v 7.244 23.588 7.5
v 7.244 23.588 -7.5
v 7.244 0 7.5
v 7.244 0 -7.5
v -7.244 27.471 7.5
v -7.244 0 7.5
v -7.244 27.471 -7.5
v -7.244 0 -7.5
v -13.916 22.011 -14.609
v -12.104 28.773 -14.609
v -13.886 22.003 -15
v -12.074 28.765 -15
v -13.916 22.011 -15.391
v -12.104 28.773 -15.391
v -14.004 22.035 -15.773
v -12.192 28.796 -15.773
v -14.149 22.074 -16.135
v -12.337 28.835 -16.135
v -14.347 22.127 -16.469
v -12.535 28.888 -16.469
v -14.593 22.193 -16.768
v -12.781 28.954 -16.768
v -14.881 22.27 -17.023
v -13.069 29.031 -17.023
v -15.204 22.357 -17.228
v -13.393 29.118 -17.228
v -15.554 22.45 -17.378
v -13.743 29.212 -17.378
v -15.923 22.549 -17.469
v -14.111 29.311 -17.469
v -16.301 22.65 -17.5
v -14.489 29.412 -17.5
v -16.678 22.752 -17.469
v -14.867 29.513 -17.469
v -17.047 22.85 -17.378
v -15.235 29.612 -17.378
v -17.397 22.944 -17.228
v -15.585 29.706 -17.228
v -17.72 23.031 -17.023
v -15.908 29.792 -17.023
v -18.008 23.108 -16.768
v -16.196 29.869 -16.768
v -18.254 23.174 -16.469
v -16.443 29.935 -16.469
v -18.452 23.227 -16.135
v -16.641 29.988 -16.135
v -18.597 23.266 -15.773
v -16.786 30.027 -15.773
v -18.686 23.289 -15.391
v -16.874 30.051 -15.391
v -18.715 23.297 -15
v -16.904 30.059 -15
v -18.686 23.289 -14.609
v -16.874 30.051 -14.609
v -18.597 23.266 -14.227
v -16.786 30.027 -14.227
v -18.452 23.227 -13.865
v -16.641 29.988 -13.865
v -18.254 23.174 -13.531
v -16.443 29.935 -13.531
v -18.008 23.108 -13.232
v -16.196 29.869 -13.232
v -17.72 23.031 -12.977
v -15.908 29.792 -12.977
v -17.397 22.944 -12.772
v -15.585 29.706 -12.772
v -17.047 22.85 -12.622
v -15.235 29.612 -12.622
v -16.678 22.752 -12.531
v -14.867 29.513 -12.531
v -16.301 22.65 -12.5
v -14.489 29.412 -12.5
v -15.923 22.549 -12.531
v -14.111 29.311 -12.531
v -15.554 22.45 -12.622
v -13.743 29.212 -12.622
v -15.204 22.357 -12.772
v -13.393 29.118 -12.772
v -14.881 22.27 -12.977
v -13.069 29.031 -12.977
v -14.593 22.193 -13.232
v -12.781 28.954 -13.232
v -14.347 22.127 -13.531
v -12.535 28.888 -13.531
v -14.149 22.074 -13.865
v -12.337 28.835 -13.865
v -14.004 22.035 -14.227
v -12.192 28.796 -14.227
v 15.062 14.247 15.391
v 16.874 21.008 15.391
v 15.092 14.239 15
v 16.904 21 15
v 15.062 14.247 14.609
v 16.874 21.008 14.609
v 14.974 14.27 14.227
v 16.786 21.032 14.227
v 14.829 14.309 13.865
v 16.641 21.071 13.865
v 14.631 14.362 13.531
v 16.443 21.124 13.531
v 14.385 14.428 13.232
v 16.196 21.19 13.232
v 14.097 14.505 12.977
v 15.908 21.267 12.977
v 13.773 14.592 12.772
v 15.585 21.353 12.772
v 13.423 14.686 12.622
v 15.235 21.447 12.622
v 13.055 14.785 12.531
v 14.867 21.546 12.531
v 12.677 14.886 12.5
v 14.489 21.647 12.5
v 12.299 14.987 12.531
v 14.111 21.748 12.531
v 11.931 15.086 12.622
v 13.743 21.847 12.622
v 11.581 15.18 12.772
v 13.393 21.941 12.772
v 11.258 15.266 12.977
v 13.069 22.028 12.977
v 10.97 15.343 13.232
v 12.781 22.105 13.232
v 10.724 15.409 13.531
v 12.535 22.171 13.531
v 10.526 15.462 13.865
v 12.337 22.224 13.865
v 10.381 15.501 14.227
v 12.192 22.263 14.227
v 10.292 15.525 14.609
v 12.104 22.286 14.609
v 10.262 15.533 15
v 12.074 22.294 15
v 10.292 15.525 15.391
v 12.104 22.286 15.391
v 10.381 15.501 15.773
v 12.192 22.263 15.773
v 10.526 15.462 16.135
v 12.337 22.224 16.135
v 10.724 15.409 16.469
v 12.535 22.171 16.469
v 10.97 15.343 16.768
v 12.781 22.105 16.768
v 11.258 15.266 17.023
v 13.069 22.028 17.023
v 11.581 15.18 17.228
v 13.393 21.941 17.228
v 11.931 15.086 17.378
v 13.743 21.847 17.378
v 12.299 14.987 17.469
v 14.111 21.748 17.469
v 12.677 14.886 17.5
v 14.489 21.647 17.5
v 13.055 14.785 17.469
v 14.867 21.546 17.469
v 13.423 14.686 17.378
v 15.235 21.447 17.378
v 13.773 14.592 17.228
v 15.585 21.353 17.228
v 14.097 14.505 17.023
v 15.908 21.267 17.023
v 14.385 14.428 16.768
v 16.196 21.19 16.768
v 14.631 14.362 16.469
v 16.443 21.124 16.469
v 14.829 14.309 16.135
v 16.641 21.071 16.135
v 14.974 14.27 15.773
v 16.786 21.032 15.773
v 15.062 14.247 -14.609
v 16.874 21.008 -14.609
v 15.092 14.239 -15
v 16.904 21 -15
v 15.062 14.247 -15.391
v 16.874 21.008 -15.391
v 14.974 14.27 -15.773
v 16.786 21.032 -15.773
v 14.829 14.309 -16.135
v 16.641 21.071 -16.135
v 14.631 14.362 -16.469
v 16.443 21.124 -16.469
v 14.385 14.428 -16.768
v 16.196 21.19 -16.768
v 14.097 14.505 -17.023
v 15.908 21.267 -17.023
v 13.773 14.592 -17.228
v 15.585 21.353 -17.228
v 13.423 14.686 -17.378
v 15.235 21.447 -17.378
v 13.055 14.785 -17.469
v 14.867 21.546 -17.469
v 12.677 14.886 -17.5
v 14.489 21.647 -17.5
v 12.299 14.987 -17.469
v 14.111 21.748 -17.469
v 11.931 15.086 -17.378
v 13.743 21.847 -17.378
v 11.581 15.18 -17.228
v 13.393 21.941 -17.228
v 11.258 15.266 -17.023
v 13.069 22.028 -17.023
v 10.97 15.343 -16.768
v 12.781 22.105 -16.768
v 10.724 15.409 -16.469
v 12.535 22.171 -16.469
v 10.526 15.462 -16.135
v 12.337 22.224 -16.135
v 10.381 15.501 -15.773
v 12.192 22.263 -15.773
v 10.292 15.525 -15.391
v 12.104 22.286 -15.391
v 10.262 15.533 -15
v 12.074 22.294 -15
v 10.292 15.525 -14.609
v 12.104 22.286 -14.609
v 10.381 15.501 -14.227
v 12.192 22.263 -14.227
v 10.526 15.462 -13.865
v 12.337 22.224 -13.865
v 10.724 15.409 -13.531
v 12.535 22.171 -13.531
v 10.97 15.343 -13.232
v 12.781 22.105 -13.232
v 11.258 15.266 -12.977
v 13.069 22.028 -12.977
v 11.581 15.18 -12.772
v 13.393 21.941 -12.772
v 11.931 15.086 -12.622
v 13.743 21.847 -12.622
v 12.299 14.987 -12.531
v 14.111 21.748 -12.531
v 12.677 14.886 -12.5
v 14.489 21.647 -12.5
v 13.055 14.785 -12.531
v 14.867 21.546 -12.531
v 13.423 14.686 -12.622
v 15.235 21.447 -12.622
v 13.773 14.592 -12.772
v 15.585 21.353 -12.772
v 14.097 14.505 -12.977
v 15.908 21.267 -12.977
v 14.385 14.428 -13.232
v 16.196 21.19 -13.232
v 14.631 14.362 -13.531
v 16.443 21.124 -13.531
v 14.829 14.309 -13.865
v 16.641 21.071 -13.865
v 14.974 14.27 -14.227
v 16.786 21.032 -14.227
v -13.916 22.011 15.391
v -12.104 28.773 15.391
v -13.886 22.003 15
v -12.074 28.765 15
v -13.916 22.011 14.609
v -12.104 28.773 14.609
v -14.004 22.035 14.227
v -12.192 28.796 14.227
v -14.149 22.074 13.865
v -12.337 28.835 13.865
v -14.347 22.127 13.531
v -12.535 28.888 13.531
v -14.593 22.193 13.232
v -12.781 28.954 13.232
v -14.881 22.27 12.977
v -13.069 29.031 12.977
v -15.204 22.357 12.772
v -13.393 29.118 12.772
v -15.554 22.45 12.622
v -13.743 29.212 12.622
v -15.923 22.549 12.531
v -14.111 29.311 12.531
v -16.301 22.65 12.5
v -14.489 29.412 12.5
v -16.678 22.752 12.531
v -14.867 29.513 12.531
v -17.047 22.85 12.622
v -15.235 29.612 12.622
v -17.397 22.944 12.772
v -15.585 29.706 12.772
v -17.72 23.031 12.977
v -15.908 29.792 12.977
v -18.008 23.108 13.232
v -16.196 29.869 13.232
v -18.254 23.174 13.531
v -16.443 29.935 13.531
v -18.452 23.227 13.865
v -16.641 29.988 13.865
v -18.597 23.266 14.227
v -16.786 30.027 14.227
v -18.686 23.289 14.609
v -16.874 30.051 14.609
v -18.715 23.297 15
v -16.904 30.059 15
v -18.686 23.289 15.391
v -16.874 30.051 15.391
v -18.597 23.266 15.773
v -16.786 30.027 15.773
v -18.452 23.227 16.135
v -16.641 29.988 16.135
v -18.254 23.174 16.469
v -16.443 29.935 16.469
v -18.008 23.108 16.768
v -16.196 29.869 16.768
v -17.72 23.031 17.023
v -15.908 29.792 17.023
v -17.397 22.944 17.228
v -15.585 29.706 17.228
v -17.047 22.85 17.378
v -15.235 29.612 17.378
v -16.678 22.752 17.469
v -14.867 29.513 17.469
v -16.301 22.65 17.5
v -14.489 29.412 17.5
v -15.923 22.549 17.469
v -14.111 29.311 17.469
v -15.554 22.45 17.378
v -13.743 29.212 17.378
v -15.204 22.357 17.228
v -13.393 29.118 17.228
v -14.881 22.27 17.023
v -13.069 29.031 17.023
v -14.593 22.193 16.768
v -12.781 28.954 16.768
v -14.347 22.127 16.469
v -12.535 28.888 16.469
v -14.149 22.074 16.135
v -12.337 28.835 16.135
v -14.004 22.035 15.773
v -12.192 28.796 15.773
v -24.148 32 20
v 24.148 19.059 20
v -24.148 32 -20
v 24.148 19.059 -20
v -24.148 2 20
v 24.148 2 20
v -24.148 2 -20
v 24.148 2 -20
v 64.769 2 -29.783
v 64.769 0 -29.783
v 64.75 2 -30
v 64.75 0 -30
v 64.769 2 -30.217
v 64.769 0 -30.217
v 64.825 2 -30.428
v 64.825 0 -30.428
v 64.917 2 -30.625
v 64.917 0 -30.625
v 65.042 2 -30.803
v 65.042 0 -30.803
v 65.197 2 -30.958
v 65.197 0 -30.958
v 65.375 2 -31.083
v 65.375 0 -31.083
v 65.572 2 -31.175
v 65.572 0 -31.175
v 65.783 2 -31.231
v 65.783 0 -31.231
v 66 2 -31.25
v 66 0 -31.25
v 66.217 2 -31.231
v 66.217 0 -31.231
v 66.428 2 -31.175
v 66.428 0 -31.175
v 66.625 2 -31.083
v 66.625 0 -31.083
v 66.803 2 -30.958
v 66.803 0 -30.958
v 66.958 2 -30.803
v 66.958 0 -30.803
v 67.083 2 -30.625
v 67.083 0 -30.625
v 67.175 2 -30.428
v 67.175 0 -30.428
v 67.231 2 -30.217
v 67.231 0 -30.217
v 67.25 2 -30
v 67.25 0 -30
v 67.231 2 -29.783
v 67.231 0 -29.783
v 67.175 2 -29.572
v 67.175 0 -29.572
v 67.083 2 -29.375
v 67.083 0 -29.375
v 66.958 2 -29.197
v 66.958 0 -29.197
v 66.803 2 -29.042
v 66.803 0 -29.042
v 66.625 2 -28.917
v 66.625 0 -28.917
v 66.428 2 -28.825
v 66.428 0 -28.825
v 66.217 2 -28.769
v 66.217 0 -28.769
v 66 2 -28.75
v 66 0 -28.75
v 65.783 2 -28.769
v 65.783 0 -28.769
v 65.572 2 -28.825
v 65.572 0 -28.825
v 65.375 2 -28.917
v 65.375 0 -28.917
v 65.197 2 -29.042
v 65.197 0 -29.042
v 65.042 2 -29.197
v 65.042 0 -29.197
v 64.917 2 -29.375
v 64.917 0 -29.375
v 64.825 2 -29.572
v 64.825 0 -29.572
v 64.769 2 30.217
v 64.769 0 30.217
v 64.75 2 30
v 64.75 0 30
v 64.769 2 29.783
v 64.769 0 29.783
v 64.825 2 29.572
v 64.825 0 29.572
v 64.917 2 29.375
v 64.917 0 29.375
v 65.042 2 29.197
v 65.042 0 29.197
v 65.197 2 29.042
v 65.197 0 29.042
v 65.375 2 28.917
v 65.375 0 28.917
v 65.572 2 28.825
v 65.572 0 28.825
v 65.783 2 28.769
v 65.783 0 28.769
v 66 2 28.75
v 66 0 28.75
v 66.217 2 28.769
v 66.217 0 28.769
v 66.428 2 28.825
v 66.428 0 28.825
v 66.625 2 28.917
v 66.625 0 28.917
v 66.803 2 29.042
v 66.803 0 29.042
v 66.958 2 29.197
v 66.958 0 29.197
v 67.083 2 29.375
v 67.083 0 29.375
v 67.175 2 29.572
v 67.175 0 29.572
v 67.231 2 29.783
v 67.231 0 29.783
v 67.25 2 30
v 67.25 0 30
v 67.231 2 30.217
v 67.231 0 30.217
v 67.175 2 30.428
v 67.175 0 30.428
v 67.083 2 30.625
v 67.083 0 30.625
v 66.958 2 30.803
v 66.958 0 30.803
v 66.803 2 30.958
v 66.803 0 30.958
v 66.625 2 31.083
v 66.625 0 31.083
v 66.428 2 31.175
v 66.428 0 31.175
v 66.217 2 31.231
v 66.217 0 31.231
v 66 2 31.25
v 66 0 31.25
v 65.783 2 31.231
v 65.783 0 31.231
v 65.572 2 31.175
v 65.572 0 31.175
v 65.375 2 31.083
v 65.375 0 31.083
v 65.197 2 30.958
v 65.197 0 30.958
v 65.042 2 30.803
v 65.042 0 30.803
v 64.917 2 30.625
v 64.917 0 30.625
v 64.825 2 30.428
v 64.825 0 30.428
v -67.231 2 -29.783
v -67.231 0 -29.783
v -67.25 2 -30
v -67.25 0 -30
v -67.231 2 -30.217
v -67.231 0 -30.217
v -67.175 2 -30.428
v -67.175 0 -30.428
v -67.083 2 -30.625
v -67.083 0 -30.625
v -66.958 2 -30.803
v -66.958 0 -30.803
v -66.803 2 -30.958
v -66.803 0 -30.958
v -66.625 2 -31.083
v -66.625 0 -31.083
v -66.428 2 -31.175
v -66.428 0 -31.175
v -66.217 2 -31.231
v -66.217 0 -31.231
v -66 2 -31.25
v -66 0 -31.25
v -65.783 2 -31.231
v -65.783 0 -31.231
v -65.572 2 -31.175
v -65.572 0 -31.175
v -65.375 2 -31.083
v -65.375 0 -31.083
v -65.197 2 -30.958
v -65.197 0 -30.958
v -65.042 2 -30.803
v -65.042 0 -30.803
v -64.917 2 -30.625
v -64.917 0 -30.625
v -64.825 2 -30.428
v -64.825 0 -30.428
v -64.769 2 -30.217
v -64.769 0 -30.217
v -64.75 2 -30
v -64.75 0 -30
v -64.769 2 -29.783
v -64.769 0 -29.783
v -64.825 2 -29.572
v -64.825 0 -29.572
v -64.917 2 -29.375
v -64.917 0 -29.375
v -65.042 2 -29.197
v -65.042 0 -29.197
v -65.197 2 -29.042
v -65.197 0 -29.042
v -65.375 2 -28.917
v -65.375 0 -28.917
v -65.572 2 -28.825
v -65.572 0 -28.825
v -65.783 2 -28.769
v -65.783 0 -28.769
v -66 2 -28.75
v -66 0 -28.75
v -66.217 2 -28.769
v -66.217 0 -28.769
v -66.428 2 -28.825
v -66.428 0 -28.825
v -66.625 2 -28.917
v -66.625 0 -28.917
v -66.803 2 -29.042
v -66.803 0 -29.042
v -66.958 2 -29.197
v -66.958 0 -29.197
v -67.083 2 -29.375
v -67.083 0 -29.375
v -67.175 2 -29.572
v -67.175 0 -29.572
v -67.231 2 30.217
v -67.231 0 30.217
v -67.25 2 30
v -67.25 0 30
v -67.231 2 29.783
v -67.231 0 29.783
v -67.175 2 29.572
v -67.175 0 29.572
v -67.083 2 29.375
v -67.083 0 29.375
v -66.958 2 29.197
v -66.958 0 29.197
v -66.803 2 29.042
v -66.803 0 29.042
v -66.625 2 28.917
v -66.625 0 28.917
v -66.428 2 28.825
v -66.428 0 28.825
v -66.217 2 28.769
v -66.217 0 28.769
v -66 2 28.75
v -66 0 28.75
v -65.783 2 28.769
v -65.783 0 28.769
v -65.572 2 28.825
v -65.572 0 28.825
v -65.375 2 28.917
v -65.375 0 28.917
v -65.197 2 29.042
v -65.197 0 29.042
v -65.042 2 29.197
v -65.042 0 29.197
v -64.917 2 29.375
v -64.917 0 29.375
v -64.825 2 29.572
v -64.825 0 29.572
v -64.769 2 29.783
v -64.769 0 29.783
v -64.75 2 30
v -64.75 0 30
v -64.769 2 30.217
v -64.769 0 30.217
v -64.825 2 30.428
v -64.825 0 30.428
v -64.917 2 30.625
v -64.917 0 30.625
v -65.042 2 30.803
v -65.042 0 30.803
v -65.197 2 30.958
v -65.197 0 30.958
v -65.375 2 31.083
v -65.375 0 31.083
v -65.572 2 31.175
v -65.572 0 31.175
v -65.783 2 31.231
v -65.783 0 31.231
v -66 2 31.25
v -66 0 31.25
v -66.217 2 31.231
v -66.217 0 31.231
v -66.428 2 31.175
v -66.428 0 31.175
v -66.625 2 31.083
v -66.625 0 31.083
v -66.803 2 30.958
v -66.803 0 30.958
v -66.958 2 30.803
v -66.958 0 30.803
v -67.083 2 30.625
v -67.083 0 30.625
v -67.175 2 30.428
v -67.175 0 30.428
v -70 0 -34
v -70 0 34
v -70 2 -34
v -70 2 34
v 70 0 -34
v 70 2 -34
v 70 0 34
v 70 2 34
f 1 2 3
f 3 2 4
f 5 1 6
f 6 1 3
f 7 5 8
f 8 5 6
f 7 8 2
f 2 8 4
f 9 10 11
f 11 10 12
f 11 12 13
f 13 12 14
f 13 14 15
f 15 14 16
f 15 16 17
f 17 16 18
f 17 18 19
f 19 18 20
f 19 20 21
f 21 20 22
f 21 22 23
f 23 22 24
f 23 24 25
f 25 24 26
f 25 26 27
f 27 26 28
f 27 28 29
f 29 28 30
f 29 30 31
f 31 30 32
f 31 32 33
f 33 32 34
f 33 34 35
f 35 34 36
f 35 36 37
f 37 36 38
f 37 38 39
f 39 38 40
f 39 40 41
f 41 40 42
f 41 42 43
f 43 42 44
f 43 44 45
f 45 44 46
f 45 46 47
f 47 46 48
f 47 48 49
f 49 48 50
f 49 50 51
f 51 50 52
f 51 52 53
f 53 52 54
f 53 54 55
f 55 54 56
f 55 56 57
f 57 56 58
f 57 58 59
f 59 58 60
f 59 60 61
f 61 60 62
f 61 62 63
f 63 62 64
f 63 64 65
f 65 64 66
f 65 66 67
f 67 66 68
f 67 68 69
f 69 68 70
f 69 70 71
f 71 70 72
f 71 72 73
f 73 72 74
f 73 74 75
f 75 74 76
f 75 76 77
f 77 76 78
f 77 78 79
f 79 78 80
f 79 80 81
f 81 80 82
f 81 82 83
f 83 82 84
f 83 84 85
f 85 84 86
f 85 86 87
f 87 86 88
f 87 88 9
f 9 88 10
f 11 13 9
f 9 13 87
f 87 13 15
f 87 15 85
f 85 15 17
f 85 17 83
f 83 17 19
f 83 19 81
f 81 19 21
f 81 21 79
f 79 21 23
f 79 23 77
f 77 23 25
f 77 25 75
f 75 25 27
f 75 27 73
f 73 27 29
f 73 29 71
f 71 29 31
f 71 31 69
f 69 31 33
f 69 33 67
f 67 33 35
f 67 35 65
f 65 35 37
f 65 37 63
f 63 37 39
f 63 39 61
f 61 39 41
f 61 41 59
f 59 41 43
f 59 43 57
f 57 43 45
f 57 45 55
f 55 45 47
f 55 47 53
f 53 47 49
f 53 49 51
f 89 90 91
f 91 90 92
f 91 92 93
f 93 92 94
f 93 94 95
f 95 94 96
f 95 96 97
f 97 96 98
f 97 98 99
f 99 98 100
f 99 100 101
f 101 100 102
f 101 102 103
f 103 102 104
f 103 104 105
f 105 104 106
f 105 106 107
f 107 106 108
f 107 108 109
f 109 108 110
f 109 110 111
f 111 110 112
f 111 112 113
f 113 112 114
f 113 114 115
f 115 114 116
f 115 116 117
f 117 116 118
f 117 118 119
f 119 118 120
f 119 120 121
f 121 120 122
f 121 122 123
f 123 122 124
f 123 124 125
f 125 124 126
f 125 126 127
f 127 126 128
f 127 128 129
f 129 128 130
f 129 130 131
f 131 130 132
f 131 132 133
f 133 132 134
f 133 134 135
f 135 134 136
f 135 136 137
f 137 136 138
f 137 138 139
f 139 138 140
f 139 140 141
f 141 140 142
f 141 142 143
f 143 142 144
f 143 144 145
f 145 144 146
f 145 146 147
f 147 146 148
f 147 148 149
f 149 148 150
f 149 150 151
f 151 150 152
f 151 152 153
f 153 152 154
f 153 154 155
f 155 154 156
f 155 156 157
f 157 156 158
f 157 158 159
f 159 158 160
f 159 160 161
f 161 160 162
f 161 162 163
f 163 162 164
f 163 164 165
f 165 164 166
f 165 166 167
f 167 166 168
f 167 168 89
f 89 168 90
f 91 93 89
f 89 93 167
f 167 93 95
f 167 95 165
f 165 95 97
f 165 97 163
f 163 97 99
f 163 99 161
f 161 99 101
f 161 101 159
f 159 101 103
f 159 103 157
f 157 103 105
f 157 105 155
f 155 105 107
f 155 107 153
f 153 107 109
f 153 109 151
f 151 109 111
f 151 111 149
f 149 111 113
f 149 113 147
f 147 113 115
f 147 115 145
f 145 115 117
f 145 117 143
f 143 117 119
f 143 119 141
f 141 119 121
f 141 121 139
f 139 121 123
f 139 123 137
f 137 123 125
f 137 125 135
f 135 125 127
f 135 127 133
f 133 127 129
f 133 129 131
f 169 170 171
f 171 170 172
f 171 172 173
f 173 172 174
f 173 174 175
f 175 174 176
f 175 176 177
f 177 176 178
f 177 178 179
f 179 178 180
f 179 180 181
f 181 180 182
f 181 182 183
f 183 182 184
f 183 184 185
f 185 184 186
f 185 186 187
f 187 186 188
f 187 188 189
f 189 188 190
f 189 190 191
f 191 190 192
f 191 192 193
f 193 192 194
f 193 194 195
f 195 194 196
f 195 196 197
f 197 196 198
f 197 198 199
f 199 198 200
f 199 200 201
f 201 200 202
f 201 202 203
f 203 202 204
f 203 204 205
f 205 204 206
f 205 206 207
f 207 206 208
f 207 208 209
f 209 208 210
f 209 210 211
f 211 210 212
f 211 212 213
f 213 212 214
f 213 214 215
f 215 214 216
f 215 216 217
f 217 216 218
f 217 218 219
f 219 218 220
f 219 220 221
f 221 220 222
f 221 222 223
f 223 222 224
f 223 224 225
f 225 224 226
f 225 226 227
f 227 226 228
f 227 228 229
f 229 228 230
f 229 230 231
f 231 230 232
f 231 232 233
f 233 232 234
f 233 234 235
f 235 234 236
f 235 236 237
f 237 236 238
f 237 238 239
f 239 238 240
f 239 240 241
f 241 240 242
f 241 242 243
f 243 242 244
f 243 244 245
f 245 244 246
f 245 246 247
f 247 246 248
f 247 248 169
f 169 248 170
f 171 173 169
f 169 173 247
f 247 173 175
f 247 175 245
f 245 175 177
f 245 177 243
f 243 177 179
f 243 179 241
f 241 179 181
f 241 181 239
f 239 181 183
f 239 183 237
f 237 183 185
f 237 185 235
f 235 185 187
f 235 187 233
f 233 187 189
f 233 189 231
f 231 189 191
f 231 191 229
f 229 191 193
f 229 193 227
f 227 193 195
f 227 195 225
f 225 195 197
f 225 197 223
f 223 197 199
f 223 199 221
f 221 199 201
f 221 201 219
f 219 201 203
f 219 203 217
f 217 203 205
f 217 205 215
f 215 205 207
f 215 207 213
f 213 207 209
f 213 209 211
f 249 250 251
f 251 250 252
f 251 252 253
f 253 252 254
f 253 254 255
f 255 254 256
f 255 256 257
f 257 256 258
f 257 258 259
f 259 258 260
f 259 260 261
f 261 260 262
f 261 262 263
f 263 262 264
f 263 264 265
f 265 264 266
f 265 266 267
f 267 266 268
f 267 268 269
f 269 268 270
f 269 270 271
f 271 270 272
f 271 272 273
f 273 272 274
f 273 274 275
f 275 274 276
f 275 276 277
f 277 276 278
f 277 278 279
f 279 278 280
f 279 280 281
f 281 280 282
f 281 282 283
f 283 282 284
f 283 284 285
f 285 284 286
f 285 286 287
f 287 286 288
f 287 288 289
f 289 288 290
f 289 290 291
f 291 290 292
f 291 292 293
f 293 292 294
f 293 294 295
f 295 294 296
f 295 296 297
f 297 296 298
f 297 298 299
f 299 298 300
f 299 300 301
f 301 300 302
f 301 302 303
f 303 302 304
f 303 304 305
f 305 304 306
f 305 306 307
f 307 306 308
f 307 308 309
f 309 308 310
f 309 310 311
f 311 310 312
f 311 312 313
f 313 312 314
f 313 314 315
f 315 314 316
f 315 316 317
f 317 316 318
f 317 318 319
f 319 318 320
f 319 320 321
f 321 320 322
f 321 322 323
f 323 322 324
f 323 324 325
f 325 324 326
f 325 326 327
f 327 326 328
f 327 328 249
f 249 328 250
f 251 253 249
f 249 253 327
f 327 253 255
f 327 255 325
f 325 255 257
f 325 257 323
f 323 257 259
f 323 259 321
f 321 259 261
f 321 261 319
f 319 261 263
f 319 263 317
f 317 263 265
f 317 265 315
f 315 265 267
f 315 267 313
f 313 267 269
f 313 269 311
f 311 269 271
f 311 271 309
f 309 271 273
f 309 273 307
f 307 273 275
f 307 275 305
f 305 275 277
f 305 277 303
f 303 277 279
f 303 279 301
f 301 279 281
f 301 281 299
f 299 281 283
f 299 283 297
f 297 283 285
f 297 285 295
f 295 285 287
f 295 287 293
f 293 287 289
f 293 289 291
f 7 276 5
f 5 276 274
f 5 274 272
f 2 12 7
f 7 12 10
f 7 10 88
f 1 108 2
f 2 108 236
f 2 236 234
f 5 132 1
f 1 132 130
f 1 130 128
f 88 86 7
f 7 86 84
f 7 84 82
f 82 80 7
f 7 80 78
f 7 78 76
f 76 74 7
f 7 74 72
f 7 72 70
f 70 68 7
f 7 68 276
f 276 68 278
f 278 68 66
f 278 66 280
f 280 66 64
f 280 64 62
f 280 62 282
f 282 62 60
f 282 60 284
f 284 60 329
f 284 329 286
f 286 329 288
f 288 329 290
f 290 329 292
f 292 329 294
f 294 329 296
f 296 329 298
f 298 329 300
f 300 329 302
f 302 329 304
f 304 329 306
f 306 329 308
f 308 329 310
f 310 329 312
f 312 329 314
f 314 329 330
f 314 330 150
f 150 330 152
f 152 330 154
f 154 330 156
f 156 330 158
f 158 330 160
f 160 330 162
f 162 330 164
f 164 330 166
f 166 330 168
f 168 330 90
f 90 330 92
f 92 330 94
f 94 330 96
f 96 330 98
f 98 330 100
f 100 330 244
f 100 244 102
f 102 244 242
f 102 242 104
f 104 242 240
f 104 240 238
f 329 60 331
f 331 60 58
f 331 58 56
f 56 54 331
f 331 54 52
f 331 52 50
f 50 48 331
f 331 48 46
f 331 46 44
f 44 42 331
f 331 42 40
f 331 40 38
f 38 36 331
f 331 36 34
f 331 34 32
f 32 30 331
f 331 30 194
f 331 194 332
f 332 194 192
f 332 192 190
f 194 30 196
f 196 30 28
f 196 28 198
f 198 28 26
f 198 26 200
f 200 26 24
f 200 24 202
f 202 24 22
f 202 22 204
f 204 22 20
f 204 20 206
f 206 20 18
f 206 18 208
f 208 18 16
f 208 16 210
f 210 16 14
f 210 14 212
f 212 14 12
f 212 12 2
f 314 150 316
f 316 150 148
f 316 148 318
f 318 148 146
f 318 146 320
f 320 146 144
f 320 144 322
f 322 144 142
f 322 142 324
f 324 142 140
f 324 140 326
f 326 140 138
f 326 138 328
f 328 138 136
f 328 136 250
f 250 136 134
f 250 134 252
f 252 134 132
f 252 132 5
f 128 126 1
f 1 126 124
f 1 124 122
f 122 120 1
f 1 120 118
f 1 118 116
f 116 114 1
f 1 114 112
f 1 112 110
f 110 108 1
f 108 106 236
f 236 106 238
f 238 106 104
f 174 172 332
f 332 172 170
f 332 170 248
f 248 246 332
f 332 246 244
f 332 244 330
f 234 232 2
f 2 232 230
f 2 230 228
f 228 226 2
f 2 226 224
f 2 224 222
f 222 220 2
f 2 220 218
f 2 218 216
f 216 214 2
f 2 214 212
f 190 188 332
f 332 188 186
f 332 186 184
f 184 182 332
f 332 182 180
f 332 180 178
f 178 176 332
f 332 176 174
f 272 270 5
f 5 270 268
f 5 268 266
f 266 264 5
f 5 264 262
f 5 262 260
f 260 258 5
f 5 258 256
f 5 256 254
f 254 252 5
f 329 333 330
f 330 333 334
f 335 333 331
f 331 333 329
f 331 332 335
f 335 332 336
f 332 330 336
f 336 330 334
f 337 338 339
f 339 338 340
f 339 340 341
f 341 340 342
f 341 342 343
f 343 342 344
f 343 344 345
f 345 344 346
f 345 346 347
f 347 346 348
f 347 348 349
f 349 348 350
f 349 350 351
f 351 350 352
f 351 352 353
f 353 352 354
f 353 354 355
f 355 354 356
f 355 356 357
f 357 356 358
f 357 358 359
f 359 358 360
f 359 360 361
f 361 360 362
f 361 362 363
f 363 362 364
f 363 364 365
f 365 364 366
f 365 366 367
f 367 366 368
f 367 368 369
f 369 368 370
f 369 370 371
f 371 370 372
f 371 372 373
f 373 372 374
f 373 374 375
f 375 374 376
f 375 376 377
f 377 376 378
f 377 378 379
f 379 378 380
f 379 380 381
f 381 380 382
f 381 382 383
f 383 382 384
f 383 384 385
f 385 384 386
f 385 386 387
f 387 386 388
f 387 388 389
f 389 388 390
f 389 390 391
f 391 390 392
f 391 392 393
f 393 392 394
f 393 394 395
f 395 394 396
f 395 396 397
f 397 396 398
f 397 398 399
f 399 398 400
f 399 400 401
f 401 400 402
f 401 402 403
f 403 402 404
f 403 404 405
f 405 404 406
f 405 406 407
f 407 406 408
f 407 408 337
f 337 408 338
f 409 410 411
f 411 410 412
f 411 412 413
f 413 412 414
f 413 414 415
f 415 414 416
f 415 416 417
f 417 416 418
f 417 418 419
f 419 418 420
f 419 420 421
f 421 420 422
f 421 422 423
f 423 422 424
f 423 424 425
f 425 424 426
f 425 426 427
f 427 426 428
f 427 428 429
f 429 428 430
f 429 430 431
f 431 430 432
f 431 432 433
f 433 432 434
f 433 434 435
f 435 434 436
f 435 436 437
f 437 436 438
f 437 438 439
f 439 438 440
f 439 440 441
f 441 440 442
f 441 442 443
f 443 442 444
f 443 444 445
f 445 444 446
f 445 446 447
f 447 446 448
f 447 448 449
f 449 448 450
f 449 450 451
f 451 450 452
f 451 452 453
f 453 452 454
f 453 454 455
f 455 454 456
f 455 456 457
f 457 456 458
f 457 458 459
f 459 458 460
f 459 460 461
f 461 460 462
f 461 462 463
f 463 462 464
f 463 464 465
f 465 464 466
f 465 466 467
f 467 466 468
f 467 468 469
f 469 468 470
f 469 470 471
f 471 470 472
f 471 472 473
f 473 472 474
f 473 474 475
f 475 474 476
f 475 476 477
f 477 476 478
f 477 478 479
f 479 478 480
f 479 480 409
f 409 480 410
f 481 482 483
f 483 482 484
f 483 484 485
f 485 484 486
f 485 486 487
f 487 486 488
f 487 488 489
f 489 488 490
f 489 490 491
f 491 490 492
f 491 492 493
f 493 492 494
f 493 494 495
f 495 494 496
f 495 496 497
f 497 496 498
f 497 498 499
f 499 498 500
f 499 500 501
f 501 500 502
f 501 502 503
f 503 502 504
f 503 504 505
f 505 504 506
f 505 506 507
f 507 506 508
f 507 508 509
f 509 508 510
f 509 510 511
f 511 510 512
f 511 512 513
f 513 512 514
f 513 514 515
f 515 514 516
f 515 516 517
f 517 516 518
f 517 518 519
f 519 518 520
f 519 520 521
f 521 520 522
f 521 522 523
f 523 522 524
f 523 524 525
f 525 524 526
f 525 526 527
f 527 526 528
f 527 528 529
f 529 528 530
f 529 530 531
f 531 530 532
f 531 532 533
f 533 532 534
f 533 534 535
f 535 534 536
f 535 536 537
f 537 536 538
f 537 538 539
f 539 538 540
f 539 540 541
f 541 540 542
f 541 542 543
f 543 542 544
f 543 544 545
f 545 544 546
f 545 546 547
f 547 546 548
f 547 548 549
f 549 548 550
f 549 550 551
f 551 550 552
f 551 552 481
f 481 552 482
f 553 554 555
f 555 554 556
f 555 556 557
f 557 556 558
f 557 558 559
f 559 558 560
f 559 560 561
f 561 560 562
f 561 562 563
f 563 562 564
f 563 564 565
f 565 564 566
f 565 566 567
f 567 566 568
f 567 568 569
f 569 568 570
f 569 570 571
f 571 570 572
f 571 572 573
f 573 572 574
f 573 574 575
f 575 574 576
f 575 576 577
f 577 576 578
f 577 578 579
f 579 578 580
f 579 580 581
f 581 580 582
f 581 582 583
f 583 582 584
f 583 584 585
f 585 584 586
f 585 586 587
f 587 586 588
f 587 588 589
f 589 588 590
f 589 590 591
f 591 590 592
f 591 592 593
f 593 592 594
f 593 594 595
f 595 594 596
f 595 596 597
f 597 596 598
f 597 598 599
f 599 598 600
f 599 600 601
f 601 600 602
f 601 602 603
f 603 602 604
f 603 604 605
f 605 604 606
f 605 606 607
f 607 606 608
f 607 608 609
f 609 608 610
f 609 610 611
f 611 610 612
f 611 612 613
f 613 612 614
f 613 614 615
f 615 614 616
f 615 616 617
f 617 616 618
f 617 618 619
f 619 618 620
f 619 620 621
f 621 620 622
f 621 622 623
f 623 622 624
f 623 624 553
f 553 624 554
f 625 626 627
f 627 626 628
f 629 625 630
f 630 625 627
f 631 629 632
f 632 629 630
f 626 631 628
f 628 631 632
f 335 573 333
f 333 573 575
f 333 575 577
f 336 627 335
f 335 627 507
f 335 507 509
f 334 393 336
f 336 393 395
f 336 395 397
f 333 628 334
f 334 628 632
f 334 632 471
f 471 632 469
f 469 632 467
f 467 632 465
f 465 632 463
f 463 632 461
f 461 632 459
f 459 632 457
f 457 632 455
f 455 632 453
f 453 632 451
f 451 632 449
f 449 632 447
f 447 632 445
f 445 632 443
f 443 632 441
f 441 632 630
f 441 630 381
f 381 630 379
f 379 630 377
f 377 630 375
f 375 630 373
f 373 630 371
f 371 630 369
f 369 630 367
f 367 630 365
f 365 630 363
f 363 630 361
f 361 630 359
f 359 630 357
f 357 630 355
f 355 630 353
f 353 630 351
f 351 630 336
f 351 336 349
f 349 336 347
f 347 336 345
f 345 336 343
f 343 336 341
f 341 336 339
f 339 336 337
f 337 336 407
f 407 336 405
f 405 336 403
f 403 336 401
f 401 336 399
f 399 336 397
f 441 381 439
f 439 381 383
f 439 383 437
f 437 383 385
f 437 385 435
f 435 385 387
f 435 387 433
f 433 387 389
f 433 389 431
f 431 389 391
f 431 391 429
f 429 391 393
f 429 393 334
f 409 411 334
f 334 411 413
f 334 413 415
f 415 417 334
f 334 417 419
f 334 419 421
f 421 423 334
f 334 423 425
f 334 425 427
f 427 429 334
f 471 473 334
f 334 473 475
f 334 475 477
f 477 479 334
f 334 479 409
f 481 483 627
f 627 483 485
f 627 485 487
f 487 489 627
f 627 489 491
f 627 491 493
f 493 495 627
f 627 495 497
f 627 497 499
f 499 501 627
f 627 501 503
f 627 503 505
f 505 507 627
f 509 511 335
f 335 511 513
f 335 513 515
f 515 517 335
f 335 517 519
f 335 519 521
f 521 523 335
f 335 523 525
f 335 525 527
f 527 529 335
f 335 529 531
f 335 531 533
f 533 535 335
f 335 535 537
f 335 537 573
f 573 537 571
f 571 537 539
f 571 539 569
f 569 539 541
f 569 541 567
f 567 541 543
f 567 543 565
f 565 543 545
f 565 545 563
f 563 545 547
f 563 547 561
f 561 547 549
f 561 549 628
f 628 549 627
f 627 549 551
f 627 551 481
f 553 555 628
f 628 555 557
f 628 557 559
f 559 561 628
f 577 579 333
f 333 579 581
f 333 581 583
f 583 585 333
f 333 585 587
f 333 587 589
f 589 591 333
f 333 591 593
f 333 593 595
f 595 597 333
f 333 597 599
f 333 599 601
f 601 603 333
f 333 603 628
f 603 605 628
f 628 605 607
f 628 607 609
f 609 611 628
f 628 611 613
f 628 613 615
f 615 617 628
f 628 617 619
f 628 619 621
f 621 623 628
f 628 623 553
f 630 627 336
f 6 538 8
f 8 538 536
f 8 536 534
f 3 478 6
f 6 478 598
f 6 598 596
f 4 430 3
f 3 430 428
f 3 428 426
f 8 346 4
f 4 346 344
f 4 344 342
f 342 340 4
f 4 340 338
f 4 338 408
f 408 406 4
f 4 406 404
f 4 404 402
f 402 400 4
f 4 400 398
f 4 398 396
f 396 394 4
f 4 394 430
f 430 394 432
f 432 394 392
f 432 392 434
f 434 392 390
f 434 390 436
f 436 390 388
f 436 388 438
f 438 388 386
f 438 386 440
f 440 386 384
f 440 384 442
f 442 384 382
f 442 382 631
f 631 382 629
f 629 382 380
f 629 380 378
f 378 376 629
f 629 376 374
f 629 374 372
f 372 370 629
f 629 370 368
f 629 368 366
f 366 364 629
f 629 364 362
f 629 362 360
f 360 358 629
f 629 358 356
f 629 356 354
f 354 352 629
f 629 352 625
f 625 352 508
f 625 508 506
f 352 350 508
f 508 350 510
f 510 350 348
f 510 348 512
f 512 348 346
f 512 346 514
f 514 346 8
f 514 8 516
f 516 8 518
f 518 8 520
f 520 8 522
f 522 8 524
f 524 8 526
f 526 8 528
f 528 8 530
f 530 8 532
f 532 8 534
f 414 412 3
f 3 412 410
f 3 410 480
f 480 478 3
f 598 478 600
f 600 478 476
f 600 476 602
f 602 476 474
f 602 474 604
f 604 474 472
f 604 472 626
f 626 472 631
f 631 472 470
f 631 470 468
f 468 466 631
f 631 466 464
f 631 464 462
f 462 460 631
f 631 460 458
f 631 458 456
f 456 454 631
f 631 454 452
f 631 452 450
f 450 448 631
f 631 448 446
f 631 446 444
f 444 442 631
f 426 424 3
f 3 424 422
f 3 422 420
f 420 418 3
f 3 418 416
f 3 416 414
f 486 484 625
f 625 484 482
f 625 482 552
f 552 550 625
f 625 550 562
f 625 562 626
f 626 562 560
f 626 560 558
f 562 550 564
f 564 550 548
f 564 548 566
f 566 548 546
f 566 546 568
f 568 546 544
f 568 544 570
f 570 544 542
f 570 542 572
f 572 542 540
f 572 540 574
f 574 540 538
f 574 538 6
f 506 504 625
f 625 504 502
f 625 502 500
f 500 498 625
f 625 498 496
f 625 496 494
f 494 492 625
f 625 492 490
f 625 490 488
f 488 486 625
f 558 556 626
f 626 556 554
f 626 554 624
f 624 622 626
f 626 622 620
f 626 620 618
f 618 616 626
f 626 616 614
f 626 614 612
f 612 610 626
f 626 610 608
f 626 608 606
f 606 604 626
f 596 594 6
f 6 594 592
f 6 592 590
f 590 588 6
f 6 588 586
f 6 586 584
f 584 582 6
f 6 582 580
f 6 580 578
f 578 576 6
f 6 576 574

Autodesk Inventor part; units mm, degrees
ref_plane "YZ Plane" through (0, 0, 0) normal (1, 0, 0) x (0, 1, 0)
ref_plane "XZ Plane" through (0, 0, 0) normal (0, 1, 0) x (-1, 0, 0)
ref_plane "XY Plane" through (0, 0, 0) normal (0, 0, 1) x (1, 0, 0)
sketch "Sketch1" plane through (0, 0, 0) normal (0, 1, 0) x (-1, 0, 0)
  line L0 (70, 34) -> (-70, 34)
  line L1 (-70, 34) -> (-70, -34)
  line L2 (-70, -34) -> (70, -34)
  line L3 (70, -34) -> (70, 34)
  line L4 (70, 0) -> (-70, 0) construction
  line L5 (0, 34) -> (0, -34) construction
  line L6 (70, 34) -> (66, 34) construction
  line L7 (66, 34) -> (66, 30) construction
  line L8 (66, 30) -> (70, 30) construction
  line L9 (70, 30) -> (70, 34) construction
  circle A0 centre (66, 30) radius 1.25
  circle A1 centre (66, -30) radius 1.25
  circle A2 centre (-66, 30) radius 1.25
  circle A3 centre (-66, -30) radius 1.25
  point P0 (0, 0)
  point P1 (0, 0)
  dimension "d0" = 68
  dimension "d1" = 140
  dimension "d4" = 4
  dimension "d5" = 4
  dimension "d6" = 2.5
extrude "Extrusion1" add sketch "Sketch1" along normal blind 2
sketch "Sketch2" plane through (0, 2, 0) normal (0, 1, 0) x (1, 0, 0)
  line L0 (-24.1481, -20) -> (24.1481, -20)
  line L1 (24.1481, -20) -> (24.1481, 20)
  line L2 (24.1481, 20) -> (-24.1481, 20)
  line L3 (-24.1481, 20) -> (-24.1481, -20)
  line L4 (-24.1481, 0) -> (24.1481, 0) construction
  line L5 (0, -20) -> (0, 20) construction
  point P0 (0, 0)
  point P1 (0, 0)
  dimension "d7" = 48.2963
  dimension "d8" = 40
extrude "Extrusion2" add sketch "Sketch2" along normal blind 30
sketch "Sketch3" plane through (-24.1481, 2, 20) normal (0, 0, 1) x (1, 0, 0)
  line L0 (0, 0) -> (0, 30) projected
  line L1 (0, 30) -> (48.2963, 17.059)
  line L2 (48.2963, 0) -> (48.2963, 30) projected
  line L3 (0, 30) -> (48.2963, 30) projected
  point P0 (24.1481, -2)
  dimension "d11" = 15
extrude "Extrusion3" cut sketch "Sketch3" against normal up to next
sketch "Sketch5" plane through (-24.1481, 32, 20) normal (0.2588, 0.9659, 0) x (0.9659, -0.2588, 0)
  line L0 (40, 5) -> (10, 5) construction
  line L1 (10, 5) -> (10, 35) construction
  line L2 (10, 35) -> (40, 35) construction
  line L3 (40, 35) -> (40, 5) construction
  line L4 (50, 40) -> (50, 0) construction
  line L5 (50, 20) -> (0, 20) construction
  line L6 (0, 40) -> (0, 0) construction
  line L7 (7.7646, 40) -> (0, 40) construction
  line L8 (7.7646, 0) -> (0, 0) construction
  line L9 (40, 20) -> (10, 20) construction
  circle A0 centre (40, 5) radius 2.5
  circle A1 centre (40, 35) radius 2.5
  circle A2 centre (10, 35) radius 2.5
  circle A3 centre (10, 5) radius 2.5
  point P0 (31.6075, 20)
  point P1 (25, 20)
  dimension "d18" = 30
  dimension "d19" = 30
  dimension "d20" = 5
  dimension "d21" = 5
  dimension "d22" = 5
  dimension "d23" = 5
extrude "Extrusion5" cut sketch "Sketch5" against normal blind 7
sketch "Sketch6" plane through (0, 0, 0) normal (0, -1, 0) x (1, 0, 0)
  line L0 (-24.1481, -20) -> (24.1481, -20) projected
  line L1 (24.1481, -20) -> (24.1481, 20) projected
  line L2 (-24.1481, 20) -> (-24.1481, -20) projected
  line L3 (24.1481, 20) -> (-24.1481, 20) projected
  line L4 (-7.2444, 7.5) -> (7.2444, 7.5)
  line L5 (7.2444, 7.5) -> (7.2444, -7.5)
  line L6 (7.2444, -7.5) -> (-7.2444, -7.5)
  line L7 (-7.2444, -7.5) -> (-7.2444, 7.5)
  line L8 (0, -7.5) -> (0, 7.5) construction
  point P0 (0, 0)
  point P1 (0, 0)
  dimension "d26" = 14.4889
  dimension "d27" = 15
extrude "Extrusion6" cut sketch "Sketch6" against normal up to next contours L4 L5 L6 L7
properties part number "touchscreen_support"
